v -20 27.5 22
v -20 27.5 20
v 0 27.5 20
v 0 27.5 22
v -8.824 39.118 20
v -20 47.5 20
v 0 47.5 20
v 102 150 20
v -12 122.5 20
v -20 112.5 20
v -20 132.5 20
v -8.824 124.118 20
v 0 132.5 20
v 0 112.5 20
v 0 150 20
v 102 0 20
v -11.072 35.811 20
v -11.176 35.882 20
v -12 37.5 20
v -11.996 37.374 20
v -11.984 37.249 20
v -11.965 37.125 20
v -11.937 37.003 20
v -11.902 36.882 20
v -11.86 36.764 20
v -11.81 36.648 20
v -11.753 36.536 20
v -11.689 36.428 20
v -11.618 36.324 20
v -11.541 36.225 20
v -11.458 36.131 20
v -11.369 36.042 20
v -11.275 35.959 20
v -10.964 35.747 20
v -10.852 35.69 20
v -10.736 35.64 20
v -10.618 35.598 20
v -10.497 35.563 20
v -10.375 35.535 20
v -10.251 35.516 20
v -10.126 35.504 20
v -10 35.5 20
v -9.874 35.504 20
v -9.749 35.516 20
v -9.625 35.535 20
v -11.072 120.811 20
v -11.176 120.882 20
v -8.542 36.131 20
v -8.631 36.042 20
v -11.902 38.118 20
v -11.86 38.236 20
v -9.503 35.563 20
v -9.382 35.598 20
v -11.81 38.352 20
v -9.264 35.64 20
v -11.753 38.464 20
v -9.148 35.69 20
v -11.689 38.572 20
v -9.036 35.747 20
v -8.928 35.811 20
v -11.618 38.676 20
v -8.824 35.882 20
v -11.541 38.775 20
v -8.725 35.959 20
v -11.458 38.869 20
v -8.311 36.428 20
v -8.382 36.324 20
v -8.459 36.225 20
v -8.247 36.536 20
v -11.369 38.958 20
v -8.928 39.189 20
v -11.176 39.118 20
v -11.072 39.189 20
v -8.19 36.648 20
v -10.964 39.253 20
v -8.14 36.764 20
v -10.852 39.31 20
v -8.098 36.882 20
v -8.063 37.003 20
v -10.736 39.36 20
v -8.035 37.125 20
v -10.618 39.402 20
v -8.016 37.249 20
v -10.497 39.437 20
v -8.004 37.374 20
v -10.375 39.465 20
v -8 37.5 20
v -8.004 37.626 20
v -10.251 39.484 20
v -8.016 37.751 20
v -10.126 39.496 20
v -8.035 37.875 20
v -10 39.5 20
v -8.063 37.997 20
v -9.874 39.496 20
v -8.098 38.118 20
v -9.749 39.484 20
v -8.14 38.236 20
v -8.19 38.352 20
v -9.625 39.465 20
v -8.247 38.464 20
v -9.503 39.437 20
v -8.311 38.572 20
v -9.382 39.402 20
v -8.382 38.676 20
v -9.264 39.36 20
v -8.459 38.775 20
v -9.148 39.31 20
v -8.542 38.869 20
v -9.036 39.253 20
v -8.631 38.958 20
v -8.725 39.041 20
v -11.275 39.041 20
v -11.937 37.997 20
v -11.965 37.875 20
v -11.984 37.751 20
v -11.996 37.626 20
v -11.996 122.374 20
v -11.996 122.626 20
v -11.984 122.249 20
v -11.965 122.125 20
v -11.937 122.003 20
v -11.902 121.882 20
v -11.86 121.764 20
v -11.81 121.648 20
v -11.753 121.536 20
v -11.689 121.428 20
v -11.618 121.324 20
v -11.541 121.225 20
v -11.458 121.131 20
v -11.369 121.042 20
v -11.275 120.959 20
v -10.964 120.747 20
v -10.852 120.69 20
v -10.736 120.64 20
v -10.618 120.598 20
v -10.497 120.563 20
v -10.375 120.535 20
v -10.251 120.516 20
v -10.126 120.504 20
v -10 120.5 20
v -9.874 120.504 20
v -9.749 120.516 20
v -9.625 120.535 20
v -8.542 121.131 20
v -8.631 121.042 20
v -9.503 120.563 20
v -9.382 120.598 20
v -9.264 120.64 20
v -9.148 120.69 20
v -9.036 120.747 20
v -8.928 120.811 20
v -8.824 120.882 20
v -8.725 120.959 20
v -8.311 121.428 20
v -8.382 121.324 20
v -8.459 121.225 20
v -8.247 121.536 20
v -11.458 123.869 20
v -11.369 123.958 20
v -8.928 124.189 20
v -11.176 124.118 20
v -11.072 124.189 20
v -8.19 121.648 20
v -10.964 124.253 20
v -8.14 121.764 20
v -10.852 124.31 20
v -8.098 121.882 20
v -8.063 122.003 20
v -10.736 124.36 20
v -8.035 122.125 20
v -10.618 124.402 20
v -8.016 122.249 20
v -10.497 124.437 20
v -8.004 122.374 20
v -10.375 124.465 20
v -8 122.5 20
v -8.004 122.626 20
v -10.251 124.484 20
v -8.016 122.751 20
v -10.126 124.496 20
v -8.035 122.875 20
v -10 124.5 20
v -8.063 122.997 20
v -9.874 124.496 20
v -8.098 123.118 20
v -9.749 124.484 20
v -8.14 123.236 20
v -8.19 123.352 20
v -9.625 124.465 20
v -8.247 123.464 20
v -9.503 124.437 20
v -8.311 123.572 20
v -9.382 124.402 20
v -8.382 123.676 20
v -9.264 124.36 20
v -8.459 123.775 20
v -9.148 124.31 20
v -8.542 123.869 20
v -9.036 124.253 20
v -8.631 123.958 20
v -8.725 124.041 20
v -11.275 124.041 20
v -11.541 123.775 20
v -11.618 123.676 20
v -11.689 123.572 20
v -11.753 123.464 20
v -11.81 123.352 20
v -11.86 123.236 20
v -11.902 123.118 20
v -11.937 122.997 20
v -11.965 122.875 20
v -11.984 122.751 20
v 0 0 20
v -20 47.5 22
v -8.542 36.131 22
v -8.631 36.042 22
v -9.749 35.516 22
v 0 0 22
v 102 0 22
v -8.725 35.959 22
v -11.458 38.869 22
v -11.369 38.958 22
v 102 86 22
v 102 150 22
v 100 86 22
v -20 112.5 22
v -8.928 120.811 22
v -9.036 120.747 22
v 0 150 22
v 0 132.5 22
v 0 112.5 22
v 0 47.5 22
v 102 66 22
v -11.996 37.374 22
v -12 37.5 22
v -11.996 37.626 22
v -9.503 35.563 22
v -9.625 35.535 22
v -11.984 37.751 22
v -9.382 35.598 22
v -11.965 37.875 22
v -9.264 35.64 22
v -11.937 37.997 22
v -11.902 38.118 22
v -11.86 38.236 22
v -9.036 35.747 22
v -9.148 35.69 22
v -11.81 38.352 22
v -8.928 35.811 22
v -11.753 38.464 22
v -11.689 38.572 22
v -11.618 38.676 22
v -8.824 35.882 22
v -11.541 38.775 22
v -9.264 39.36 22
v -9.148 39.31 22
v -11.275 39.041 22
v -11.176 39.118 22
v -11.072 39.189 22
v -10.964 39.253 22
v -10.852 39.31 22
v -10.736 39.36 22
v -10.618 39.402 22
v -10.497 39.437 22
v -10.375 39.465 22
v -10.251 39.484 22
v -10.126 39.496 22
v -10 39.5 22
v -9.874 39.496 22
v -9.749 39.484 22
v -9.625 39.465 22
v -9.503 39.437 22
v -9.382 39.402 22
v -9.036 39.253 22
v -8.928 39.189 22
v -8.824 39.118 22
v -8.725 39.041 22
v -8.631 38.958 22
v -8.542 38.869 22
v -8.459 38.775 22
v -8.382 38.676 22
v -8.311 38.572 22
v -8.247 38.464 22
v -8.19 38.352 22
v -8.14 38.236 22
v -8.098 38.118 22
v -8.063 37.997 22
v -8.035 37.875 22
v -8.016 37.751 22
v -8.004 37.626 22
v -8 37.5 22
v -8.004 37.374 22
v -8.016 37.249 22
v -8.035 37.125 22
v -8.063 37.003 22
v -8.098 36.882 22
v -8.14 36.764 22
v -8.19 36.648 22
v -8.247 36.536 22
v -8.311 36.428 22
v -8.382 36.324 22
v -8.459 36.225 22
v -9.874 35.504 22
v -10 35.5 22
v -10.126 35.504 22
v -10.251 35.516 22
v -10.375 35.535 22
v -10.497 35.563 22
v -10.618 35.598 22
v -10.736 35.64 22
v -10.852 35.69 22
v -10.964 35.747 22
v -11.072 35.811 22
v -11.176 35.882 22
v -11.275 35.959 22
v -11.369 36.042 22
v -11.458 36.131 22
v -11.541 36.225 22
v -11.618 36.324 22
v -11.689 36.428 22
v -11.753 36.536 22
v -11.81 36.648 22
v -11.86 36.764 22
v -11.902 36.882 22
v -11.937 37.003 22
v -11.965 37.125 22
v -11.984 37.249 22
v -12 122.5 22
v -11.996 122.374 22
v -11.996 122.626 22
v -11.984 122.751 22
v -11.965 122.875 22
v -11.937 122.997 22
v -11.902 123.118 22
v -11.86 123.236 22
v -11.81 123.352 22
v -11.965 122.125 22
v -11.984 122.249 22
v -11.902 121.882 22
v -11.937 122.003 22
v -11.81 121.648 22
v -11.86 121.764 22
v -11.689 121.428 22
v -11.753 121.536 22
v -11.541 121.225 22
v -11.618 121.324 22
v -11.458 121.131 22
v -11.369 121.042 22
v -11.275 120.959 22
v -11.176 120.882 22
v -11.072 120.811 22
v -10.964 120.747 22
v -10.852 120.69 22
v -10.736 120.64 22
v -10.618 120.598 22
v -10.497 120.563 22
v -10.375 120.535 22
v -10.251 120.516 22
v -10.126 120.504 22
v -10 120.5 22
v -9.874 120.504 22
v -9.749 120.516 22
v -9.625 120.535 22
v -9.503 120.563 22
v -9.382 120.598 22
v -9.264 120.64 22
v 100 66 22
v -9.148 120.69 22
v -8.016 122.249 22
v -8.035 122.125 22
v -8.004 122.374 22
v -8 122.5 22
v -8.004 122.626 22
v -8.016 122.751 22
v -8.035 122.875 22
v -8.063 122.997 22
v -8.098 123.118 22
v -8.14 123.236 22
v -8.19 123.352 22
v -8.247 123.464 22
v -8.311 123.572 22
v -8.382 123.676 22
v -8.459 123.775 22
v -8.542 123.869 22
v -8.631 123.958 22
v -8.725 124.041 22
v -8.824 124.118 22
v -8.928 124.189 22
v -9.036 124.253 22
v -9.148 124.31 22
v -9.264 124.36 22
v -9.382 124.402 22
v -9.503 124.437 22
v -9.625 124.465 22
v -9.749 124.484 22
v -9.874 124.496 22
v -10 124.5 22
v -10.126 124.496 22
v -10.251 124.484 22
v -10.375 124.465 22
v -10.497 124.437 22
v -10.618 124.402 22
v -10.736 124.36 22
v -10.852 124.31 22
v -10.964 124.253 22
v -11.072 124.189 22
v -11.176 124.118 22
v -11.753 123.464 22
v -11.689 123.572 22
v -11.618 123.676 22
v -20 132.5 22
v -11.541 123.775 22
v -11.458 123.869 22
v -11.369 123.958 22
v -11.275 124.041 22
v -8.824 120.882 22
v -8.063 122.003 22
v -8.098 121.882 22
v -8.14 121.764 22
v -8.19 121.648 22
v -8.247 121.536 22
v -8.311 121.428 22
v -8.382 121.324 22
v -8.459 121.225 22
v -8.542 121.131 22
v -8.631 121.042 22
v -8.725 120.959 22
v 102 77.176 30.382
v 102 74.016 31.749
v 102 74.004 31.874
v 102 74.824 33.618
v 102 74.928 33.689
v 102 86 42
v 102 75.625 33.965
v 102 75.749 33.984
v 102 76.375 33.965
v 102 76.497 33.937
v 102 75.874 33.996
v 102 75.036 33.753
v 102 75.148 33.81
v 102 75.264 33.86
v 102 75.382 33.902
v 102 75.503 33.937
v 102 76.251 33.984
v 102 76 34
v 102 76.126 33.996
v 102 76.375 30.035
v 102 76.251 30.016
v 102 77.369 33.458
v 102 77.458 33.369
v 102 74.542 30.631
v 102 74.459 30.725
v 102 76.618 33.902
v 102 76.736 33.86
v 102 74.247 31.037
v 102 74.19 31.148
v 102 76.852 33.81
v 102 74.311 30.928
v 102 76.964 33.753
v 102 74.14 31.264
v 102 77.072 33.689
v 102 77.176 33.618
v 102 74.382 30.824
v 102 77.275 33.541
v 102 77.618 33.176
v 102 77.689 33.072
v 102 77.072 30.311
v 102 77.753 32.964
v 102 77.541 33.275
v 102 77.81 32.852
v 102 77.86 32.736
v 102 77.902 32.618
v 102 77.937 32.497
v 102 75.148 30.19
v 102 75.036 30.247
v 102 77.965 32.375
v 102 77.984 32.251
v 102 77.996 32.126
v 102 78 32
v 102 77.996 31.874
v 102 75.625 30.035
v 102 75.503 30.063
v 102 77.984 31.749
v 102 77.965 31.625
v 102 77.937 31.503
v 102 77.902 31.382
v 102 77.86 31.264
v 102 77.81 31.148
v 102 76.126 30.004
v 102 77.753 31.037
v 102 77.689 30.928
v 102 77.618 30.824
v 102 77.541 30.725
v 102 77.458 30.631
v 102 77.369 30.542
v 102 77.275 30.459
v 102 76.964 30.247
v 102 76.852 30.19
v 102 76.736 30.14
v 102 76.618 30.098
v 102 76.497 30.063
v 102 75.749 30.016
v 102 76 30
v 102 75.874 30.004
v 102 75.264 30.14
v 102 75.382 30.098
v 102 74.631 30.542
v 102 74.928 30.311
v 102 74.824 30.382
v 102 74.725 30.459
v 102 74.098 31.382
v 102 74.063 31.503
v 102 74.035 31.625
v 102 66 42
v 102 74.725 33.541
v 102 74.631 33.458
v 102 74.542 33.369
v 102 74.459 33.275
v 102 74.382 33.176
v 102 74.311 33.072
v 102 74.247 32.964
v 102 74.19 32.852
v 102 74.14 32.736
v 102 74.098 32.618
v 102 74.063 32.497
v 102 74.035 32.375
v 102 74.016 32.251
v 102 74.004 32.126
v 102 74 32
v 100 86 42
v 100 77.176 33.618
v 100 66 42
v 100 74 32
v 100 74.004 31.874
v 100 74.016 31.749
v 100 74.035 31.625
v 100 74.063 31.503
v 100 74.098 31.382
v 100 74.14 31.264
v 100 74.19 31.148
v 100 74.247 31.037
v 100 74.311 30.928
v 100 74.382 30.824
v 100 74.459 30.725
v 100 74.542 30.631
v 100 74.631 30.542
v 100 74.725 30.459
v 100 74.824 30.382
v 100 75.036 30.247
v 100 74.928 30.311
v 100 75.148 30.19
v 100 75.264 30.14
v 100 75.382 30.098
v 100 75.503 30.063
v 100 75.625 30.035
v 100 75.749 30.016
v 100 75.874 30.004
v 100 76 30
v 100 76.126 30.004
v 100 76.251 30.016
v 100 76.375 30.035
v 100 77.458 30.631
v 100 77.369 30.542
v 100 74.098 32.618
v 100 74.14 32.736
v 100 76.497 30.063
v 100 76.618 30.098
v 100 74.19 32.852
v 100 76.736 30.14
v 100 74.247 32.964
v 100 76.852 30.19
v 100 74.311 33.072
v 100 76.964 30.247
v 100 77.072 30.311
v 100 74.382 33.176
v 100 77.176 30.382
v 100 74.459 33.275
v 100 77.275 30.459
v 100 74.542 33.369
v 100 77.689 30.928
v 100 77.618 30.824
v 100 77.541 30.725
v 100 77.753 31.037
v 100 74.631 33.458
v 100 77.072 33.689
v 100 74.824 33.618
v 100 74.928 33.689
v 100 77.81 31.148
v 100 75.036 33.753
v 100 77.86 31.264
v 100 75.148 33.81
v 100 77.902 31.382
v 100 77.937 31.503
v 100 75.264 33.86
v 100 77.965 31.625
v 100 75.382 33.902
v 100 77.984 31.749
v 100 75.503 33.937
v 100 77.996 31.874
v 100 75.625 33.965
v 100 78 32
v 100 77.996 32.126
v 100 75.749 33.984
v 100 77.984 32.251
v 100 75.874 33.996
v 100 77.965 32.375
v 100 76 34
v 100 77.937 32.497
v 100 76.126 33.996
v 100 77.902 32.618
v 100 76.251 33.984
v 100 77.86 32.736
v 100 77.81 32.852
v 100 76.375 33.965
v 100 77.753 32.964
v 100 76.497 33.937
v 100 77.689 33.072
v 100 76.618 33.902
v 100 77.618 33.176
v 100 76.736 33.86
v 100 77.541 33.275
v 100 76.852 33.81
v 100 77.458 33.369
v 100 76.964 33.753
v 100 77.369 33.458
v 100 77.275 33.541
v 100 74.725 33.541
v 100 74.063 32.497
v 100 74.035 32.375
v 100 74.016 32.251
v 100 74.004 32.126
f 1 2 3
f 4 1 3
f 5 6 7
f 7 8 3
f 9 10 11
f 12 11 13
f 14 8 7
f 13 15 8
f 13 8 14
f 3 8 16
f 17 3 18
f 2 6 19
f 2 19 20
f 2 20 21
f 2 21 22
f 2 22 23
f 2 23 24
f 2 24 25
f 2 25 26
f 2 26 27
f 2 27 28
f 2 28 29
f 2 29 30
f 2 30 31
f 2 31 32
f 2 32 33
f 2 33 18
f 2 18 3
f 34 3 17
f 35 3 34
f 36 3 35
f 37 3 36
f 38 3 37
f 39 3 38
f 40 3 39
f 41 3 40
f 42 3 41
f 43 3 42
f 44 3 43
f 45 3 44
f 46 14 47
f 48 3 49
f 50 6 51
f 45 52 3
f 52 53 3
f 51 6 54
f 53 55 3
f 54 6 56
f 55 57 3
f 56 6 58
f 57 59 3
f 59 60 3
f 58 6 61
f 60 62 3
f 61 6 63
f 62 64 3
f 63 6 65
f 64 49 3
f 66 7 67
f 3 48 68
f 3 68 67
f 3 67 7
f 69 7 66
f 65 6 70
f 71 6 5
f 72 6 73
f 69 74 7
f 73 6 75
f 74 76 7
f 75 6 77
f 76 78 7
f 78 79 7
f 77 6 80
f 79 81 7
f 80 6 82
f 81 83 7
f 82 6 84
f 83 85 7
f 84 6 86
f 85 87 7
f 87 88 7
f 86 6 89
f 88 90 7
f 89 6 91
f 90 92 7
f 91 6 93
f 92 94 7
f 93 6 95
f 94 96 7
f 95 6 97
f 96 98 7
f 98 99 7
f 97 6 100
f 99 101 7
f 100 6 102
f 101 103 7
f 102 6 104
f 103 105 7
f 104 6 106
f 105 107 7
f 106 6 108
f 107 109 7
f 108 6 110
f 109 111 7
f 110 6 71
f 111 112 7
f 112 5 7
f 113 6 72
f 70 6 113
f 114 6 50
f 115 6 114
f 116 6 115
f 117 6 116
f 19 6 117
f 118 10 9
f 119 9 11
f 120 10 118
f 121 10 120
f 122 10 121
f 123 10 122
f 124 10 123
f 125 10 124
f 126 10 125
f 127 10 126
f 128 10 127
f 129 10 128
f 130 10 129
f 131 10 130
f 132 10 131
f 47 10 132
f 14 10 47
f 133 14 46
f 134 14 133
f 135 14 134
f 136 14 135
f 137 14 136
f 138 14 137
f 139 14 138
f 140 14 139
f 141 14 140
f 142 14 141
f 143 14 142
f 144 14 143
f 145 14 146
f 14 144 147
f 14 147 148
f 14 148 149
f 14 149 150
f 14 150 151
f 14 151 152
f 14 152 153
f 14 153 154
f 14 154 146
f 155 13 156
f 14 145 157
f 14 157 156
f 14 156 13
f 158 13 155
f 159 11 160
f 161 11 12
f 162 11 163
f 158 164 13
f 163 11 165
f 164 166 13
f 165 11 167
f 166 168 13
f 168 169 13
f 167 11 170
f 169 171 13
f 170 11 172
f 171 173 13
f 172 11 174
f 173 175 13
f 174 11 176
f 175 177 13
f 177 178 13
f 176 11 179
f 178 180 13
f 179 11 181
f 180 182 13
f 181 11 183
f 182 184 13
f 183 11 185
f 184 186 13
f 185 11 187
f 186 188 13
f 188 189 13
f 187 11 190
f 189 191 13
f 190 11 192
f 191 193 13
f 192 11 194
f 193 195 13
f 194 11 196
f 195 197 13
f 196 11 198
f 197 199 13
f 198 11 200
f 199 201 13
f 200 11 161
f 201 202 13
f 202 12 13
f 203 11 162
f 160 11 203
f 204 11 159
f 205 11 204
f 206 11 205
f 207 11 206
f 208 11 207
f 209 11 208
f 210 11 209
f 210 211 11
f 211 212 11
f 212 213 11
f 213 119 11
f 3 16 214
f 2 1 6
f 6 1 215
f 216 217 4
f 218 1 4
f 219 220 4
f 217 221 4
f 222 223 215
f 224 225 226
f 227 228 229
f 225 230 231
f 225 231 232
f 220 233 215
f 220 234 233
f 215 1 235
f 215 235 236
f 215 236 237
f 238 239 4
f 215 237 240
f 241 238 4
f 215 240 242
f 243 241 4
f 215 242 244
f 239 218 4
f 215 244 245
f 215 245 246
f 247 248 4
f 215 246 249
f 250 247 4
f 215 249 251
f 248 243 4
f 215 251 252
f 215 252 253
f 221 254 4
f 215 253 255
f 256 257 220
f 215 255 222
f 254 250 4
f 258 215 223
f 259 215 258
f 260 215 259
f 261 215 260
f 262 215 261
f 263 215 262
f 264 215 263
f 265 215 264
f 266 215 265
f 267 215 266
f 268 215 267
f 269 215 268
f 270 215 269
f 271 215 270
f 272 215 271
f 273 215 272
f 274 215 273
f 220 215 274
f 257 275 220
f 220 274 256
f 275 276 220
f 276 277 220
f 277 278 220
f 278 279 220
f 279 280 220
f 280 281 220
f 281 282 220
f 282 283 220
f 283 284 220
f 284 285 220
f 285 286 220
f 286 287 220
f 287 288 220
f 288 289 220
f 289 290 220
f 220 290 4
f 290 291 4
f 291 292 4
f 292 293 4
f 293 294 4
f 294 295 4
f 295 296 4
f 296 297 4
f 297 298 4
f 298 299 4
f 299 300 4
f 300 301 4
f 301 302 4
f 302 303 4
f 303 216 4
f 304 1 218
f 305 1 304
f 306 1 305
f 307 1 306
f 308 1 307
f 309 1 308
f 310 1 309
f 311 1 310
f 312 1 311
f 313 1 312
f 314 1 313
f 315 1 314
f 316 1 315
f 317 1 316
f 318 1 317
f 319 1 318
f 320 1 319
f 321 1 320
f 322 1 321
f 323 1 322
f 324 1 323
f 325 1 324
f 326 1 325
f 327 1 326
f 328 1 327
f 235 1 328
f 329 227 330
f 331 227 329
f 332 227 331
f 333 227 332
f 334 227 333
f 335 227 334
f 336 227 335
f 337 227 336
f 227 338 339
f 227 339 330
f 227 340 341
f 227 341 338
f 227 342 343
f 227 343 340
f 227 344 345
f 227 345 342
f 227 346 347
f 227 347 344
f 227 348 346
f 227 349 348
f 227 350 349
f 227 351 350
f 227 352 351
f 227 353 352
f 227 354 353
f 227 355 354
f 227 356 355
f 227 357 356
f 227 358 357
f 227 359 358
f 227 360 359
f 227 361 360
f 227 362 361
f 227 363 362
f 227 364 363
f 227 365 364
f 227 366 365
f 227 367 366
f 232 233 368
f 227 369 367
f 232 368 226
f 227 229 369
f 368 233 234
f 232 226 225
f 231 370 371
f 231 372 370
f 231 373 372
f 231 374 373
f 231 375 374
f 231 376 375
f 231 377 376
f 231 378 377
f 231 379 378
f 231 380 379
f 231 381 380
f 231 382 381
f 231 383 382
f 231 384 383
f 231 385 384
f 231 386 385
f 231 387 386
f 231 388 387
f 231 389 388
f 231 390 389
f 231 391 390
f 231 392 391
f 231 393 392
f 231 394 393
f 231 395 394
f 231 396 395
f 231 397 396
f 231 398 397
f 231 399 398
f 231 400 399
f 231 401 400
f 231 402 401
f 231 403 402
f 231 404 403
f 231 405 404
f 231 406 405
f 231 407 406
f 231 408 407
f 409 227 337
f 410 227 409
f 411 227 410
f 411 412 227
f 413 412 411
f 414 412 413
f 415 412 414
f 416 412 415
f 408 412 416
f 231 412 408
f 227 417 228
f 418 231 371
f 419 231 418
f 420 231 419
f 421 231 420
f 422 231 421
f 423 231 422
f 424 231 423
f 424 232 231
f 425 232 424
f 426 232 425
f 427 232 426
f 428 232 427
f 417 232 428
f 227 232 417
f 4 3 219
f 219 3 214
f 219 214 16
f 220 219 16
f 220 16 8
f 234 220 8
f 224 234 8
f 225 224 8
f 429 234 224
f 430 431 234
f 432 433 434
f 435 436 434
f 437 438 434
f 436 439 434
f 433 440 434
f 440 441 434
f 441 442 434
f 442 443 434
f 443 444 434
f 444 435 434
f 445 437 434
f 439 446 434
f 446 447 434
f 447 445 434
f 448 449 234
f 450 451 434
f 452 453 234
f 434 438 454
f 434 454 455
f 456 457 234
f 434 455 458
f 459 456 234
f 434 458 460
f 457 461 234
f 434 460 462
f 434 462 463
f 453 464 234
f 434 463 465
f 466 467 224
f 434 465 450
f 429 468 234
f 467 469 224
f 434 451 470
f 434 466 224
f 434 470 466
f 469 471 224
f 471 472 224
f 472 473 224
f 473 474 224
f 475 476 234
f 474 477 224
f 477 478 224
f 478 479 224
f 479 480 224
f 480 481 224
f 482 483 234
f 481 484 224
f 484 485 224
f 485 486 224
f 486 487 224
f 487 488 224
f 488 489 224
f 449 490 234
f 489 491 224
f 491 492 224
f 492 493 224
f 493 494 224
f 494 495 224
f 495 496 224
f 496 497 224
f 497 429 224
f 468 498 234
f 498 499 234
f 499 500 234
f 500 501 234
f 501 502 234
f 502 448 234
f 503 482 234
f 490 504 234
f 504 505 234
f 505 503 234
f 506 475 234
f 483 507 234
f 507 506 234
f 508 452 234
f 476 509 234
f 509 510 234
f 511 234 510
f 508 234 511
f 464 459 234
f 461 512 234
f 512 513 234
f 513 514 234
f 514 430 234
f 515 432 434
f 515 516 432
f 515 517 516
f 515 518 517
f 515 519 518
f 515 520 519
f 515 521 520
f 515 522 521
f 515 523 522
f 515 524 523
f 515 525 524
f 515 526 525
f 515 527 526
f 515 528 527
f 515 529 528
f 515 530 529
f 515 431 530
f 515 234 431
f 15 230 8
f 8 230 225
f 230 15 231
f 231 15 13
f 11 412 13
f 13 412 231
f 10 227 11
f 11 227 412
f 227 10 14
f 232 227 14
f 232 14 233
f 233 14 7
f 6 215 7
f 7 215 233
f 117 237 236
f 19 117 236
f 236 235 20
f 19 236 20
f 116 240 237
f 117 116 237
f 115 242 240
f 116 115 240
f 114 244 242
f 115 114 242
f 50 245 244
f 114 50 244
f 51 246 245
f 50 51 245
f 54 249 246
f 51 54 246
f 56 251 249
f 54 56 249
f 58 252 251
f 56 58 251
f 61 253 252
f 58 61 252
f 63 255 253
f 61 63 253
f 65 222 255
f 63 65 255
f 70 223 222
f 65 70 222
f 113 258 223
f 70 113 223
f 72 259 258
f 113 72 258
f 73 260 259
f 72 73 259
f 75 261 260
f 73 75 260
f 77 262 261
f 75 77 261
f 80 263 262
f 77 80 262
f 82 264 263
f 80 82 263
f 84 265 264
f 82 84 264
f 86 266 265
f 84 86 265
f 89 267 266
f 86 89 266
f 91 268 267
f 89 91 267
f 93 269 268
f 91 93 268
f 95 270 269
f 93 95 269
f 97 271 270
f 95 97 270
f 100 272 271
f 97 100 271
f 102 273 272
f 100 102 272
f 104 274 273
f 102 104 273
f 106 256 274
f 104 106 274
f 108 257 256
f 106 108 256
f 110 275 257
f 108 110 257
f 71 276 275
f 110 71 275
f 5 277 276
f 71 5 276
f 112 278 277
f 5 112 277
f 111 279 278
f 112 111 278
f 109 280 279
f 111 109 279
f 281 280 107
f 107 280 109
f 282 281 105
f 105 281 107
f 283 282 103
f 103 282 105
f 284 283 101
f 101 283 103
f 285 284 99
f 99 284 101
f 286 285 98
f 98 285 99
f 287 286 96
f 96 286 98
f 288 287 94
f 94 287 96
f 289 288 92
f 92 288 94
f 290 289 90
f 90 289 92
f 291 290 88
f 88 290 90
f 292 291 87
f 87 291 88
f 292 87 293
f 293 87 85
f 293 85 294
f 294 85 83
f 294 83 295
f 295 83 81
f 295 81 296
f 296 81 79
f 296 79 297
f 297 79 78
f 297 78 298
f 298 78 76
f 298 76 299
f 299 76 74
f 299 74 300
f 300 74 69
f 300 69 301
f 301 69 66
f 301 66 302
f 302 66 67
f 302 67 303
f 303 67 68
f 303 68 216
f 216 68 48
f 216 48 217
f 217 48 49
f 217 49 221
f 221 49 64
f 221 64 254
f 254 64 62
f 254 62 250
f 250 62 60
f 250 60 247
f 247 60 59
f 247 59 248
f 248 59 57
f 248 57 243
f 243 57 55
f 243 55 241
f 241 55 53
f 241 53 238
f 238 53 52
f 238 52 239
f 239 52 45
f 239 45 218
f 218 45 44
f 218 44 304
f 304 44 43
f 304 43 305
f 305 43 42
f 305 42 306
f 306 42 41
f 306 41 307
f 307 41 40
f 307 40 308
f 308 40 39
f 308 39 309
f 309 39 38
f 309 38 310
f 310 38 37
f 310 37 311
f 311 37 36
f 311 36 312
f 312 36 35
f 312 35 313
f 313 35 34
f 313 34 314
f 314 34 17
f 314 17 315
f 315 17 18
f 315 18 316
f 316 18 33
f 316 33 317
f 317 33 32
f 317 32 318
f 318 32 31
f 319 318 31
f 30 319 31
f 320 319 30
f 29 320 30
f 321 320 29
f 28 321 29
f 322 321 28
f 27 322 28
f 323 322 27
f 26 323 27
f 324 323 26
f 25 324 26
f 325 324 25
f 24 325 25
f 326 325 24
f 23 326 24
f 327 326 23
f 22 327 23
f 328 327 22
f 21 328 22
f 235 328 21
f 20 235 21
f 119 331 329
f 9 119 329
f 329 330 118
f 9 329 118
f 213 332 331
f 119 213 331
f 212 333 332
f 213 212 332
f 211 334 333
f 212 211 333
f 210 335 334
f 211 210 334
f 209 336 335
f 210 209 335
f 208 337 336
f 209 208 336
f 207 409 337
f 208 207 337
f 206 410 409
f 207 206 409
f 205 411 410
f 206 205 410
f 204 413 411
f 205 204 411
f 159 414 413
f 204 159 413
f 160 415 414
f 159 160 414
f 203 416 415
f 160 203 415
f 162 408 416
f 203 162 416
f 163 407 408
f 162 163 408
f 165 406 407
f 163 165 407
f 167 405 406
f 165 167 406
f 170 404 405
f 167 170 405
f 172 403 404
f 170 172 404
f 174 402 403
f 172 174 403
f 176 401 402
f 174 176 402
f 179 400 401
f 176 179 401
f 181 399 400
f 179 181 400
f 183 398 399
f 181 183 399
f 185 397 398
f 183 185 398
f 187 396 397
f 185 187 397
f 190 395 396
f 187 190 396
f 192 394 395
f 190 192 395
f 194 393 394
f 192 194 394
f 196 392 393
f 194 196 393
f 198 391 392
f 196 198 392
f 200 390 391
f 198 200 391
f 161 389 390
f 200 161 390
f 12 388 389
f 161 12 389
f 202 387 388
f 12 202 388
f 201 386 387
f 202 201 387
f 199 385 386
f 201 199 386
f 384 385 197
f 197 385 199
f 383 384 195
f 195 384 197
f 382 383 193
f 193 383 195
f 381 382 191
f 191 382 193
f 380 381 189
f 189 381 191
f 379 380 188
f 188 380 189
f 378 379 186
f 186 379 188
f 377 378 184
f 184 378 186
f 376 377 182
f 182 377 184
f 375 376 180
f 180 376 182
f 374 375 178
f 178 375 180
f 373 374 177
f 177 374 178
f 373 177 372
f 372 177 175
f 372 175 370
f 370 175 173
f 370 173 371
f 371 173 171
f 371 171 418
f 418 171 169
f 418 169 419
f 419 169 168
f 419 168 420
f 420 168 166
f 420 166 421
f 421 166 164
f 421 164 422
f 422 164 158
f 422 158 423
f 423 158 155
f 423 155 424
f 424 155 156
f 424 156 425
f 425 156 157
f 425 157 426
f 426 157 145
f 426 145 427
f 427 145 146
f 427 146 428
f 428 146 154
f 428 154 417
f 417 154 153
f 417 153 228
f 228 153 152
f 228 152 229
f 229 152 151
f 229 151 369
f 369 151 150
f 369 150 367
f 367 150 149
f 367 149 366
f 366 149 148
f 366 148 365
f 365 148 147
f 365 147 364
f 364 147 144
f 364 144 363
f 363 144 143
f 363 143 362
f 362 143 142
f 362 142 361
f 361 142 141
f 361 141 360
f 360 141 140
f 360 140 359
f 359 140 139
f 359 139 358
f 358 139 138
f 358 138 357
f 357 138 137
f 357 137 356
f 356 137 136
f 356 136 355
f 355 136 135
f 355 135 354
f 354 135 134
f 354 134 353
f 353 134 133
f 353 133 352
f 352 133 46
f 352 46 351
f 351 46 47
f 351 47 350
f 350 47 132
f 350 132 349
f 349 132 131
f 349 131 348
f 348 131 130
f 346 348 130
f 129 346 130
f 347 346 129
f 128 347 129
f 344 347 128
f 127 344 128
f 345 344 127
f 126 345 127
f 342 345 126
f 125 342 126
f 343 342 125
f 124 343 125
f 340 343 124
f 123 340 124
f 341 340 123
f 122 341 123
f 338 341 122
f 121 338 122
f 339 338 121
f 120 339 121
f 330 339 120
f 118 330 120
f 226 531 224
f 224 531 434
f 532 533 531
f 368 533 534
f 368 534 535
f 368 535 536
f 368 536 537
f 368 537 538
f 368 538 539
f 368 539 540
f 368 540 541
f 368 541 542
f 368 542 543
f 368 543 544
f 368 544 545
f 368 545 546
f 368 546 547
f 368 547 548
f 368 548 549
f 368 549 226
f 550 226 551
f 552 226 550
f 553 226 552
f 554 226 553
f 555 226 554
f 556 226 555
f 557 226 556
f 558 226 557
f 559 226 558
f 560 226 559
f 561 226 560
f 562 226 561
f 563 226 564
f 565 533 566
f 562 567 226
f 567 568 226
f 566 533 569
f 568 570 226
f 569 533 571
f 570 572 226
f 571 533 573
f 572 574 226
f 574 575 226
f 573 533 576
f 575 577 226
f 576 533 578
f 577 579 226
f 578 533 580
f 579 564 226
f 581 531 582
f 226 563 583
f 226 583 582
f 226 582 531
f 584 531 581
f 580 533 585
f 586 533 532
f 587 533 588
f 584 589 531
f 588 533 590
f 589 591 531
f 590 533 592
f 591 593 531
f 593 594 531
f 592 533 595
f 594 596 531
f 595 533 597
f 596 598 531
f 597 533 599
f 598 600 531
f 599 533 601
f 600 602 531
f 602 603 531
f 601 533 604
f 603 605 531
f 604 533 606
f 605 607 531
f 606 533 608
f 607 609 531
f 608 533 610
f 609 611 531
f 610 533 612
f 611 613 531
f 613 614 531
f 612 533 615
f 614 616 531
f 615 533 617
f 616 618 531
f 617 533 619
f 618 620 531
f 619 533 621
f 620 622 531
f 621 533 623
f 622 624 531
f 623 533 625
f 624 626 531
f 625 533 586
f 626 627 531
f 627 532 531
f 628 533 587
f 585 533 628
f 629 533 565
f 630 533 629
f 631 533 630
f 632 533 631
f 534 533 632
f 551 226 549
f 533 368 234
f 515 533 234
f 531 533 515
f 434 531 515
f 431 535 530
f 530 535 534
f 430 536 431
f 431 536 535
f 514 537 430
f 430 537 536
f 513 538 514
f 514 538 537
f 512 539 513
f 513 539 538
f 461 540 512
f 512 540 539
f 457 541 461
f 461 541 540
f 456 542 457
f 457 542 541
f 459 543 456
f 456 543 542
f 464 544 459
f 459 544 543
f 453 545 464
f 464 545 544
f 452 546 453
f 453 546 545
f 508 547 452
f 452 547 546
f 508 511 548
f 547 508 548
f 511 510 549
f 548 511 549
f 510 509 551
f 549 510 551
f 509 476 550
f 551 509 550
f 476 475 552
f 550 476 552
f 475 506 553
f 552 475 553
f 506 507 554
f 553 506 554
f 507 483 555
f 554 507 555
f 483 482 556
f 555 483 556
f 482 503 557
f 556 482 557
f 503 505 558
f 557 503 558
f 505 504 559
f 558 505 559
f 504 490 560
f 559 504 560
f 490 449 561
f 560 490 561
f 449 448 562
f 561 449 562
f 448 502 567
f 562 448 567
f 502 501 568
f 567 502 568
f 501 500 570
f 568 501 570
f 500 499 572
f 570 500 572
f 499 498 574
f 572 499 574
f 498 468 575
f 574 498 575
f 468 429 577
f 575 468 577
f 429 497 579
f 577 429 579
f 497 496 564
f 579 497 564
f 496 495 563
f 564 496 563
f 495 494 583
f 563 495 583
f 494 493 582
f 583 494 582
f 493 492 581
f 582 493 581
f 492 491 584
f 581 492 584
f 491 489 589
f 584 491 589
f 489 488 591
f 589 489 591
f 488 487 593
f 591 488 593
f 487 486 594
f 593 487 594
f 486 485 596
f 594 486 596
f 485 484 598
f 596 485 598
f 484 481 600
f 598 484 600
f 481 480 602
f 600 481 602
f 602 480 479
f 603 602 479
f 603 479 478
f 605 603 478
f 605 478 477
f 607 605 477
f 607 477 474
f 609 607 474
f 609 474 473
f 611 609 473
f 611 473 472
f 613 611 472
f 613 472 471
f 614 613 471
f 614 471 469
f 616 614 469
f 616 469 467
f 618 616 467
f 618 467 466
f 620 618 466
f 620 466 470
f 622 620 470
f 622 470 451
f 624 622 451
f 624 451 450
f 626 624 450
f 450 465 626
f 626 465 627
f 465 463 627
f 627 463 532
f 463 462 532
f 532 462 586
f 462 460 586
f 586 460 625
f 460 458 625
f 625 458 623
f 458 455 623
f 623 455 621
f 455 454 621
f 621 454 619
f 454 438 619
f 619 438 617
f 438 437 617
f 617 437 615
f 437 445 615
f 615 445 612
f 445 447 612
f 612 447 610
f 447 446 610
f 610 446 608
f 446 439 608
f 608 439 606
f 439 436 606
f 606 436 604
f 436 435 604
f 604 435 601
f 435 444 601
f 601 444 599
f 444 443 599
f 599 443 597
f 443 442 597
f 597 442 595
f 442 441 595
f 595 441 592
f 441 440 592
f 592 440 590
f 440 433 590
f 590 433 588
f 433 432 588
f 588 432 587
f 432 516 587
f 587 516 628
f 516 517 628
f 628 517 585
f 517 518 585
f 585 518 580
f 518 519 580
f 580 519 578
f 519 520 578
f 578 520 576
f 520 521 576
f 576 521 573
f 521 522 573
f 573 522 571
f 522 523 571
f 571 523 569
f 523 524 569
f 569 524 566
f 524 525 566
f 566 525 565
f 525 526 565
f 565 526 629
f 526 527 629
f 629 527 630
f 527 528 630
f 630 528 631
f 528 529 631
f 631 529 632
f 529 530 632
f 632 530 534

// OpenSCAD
translate([0,0,20]){
translate([-20,-20+150/2+10-150/4,0]) difference(){cube([20,20,2]);
translate([10,10,-1]) cylinder(h = 10, r1 = 2, r2 = 2, $fn = 100);
};
translate([-20,-20+150/2+20+150/4,0]) difference(){cube([20,20,2]);
translate([10,10,-1]) cylinder(h = 10, r1 = 2, r2 = 2, $fn = 100);
};

cube([102,150,2]);
};


//difference(){cube([100,2,20+2]);
//translate([20,0,0]) cube([10,2,20+2]);
//translate([70,0,0]) cube([10,2,20+2]);
//};

//cube([2,150,20+2]);
//translate([0,150,0]) difference(){cube([100,2,20+2]);
//translate([20,0,0]) cube([10,2,20+2]);
//translate([70,0,0]) cube([10,2,20+2]);
//};
//translate([100,0,0]) cube([2,152,20+2]);


translate([100,152/2-10,20+2]) difference(){
    cube([2,20,20]);
    translate([-3,10,10]) rotate(a=[0,90,0]) cylinder(h = 10, r1 = 2, r2 = 2, $fn = 100);
};




//translate([-20+120,-20+150/2+10,10]) difference(){cube([20,20,2]);
//translate([10,10,-1]) cylinder(h = 10, r1 = 2, r2 = 2, $fn = 100);
//};
